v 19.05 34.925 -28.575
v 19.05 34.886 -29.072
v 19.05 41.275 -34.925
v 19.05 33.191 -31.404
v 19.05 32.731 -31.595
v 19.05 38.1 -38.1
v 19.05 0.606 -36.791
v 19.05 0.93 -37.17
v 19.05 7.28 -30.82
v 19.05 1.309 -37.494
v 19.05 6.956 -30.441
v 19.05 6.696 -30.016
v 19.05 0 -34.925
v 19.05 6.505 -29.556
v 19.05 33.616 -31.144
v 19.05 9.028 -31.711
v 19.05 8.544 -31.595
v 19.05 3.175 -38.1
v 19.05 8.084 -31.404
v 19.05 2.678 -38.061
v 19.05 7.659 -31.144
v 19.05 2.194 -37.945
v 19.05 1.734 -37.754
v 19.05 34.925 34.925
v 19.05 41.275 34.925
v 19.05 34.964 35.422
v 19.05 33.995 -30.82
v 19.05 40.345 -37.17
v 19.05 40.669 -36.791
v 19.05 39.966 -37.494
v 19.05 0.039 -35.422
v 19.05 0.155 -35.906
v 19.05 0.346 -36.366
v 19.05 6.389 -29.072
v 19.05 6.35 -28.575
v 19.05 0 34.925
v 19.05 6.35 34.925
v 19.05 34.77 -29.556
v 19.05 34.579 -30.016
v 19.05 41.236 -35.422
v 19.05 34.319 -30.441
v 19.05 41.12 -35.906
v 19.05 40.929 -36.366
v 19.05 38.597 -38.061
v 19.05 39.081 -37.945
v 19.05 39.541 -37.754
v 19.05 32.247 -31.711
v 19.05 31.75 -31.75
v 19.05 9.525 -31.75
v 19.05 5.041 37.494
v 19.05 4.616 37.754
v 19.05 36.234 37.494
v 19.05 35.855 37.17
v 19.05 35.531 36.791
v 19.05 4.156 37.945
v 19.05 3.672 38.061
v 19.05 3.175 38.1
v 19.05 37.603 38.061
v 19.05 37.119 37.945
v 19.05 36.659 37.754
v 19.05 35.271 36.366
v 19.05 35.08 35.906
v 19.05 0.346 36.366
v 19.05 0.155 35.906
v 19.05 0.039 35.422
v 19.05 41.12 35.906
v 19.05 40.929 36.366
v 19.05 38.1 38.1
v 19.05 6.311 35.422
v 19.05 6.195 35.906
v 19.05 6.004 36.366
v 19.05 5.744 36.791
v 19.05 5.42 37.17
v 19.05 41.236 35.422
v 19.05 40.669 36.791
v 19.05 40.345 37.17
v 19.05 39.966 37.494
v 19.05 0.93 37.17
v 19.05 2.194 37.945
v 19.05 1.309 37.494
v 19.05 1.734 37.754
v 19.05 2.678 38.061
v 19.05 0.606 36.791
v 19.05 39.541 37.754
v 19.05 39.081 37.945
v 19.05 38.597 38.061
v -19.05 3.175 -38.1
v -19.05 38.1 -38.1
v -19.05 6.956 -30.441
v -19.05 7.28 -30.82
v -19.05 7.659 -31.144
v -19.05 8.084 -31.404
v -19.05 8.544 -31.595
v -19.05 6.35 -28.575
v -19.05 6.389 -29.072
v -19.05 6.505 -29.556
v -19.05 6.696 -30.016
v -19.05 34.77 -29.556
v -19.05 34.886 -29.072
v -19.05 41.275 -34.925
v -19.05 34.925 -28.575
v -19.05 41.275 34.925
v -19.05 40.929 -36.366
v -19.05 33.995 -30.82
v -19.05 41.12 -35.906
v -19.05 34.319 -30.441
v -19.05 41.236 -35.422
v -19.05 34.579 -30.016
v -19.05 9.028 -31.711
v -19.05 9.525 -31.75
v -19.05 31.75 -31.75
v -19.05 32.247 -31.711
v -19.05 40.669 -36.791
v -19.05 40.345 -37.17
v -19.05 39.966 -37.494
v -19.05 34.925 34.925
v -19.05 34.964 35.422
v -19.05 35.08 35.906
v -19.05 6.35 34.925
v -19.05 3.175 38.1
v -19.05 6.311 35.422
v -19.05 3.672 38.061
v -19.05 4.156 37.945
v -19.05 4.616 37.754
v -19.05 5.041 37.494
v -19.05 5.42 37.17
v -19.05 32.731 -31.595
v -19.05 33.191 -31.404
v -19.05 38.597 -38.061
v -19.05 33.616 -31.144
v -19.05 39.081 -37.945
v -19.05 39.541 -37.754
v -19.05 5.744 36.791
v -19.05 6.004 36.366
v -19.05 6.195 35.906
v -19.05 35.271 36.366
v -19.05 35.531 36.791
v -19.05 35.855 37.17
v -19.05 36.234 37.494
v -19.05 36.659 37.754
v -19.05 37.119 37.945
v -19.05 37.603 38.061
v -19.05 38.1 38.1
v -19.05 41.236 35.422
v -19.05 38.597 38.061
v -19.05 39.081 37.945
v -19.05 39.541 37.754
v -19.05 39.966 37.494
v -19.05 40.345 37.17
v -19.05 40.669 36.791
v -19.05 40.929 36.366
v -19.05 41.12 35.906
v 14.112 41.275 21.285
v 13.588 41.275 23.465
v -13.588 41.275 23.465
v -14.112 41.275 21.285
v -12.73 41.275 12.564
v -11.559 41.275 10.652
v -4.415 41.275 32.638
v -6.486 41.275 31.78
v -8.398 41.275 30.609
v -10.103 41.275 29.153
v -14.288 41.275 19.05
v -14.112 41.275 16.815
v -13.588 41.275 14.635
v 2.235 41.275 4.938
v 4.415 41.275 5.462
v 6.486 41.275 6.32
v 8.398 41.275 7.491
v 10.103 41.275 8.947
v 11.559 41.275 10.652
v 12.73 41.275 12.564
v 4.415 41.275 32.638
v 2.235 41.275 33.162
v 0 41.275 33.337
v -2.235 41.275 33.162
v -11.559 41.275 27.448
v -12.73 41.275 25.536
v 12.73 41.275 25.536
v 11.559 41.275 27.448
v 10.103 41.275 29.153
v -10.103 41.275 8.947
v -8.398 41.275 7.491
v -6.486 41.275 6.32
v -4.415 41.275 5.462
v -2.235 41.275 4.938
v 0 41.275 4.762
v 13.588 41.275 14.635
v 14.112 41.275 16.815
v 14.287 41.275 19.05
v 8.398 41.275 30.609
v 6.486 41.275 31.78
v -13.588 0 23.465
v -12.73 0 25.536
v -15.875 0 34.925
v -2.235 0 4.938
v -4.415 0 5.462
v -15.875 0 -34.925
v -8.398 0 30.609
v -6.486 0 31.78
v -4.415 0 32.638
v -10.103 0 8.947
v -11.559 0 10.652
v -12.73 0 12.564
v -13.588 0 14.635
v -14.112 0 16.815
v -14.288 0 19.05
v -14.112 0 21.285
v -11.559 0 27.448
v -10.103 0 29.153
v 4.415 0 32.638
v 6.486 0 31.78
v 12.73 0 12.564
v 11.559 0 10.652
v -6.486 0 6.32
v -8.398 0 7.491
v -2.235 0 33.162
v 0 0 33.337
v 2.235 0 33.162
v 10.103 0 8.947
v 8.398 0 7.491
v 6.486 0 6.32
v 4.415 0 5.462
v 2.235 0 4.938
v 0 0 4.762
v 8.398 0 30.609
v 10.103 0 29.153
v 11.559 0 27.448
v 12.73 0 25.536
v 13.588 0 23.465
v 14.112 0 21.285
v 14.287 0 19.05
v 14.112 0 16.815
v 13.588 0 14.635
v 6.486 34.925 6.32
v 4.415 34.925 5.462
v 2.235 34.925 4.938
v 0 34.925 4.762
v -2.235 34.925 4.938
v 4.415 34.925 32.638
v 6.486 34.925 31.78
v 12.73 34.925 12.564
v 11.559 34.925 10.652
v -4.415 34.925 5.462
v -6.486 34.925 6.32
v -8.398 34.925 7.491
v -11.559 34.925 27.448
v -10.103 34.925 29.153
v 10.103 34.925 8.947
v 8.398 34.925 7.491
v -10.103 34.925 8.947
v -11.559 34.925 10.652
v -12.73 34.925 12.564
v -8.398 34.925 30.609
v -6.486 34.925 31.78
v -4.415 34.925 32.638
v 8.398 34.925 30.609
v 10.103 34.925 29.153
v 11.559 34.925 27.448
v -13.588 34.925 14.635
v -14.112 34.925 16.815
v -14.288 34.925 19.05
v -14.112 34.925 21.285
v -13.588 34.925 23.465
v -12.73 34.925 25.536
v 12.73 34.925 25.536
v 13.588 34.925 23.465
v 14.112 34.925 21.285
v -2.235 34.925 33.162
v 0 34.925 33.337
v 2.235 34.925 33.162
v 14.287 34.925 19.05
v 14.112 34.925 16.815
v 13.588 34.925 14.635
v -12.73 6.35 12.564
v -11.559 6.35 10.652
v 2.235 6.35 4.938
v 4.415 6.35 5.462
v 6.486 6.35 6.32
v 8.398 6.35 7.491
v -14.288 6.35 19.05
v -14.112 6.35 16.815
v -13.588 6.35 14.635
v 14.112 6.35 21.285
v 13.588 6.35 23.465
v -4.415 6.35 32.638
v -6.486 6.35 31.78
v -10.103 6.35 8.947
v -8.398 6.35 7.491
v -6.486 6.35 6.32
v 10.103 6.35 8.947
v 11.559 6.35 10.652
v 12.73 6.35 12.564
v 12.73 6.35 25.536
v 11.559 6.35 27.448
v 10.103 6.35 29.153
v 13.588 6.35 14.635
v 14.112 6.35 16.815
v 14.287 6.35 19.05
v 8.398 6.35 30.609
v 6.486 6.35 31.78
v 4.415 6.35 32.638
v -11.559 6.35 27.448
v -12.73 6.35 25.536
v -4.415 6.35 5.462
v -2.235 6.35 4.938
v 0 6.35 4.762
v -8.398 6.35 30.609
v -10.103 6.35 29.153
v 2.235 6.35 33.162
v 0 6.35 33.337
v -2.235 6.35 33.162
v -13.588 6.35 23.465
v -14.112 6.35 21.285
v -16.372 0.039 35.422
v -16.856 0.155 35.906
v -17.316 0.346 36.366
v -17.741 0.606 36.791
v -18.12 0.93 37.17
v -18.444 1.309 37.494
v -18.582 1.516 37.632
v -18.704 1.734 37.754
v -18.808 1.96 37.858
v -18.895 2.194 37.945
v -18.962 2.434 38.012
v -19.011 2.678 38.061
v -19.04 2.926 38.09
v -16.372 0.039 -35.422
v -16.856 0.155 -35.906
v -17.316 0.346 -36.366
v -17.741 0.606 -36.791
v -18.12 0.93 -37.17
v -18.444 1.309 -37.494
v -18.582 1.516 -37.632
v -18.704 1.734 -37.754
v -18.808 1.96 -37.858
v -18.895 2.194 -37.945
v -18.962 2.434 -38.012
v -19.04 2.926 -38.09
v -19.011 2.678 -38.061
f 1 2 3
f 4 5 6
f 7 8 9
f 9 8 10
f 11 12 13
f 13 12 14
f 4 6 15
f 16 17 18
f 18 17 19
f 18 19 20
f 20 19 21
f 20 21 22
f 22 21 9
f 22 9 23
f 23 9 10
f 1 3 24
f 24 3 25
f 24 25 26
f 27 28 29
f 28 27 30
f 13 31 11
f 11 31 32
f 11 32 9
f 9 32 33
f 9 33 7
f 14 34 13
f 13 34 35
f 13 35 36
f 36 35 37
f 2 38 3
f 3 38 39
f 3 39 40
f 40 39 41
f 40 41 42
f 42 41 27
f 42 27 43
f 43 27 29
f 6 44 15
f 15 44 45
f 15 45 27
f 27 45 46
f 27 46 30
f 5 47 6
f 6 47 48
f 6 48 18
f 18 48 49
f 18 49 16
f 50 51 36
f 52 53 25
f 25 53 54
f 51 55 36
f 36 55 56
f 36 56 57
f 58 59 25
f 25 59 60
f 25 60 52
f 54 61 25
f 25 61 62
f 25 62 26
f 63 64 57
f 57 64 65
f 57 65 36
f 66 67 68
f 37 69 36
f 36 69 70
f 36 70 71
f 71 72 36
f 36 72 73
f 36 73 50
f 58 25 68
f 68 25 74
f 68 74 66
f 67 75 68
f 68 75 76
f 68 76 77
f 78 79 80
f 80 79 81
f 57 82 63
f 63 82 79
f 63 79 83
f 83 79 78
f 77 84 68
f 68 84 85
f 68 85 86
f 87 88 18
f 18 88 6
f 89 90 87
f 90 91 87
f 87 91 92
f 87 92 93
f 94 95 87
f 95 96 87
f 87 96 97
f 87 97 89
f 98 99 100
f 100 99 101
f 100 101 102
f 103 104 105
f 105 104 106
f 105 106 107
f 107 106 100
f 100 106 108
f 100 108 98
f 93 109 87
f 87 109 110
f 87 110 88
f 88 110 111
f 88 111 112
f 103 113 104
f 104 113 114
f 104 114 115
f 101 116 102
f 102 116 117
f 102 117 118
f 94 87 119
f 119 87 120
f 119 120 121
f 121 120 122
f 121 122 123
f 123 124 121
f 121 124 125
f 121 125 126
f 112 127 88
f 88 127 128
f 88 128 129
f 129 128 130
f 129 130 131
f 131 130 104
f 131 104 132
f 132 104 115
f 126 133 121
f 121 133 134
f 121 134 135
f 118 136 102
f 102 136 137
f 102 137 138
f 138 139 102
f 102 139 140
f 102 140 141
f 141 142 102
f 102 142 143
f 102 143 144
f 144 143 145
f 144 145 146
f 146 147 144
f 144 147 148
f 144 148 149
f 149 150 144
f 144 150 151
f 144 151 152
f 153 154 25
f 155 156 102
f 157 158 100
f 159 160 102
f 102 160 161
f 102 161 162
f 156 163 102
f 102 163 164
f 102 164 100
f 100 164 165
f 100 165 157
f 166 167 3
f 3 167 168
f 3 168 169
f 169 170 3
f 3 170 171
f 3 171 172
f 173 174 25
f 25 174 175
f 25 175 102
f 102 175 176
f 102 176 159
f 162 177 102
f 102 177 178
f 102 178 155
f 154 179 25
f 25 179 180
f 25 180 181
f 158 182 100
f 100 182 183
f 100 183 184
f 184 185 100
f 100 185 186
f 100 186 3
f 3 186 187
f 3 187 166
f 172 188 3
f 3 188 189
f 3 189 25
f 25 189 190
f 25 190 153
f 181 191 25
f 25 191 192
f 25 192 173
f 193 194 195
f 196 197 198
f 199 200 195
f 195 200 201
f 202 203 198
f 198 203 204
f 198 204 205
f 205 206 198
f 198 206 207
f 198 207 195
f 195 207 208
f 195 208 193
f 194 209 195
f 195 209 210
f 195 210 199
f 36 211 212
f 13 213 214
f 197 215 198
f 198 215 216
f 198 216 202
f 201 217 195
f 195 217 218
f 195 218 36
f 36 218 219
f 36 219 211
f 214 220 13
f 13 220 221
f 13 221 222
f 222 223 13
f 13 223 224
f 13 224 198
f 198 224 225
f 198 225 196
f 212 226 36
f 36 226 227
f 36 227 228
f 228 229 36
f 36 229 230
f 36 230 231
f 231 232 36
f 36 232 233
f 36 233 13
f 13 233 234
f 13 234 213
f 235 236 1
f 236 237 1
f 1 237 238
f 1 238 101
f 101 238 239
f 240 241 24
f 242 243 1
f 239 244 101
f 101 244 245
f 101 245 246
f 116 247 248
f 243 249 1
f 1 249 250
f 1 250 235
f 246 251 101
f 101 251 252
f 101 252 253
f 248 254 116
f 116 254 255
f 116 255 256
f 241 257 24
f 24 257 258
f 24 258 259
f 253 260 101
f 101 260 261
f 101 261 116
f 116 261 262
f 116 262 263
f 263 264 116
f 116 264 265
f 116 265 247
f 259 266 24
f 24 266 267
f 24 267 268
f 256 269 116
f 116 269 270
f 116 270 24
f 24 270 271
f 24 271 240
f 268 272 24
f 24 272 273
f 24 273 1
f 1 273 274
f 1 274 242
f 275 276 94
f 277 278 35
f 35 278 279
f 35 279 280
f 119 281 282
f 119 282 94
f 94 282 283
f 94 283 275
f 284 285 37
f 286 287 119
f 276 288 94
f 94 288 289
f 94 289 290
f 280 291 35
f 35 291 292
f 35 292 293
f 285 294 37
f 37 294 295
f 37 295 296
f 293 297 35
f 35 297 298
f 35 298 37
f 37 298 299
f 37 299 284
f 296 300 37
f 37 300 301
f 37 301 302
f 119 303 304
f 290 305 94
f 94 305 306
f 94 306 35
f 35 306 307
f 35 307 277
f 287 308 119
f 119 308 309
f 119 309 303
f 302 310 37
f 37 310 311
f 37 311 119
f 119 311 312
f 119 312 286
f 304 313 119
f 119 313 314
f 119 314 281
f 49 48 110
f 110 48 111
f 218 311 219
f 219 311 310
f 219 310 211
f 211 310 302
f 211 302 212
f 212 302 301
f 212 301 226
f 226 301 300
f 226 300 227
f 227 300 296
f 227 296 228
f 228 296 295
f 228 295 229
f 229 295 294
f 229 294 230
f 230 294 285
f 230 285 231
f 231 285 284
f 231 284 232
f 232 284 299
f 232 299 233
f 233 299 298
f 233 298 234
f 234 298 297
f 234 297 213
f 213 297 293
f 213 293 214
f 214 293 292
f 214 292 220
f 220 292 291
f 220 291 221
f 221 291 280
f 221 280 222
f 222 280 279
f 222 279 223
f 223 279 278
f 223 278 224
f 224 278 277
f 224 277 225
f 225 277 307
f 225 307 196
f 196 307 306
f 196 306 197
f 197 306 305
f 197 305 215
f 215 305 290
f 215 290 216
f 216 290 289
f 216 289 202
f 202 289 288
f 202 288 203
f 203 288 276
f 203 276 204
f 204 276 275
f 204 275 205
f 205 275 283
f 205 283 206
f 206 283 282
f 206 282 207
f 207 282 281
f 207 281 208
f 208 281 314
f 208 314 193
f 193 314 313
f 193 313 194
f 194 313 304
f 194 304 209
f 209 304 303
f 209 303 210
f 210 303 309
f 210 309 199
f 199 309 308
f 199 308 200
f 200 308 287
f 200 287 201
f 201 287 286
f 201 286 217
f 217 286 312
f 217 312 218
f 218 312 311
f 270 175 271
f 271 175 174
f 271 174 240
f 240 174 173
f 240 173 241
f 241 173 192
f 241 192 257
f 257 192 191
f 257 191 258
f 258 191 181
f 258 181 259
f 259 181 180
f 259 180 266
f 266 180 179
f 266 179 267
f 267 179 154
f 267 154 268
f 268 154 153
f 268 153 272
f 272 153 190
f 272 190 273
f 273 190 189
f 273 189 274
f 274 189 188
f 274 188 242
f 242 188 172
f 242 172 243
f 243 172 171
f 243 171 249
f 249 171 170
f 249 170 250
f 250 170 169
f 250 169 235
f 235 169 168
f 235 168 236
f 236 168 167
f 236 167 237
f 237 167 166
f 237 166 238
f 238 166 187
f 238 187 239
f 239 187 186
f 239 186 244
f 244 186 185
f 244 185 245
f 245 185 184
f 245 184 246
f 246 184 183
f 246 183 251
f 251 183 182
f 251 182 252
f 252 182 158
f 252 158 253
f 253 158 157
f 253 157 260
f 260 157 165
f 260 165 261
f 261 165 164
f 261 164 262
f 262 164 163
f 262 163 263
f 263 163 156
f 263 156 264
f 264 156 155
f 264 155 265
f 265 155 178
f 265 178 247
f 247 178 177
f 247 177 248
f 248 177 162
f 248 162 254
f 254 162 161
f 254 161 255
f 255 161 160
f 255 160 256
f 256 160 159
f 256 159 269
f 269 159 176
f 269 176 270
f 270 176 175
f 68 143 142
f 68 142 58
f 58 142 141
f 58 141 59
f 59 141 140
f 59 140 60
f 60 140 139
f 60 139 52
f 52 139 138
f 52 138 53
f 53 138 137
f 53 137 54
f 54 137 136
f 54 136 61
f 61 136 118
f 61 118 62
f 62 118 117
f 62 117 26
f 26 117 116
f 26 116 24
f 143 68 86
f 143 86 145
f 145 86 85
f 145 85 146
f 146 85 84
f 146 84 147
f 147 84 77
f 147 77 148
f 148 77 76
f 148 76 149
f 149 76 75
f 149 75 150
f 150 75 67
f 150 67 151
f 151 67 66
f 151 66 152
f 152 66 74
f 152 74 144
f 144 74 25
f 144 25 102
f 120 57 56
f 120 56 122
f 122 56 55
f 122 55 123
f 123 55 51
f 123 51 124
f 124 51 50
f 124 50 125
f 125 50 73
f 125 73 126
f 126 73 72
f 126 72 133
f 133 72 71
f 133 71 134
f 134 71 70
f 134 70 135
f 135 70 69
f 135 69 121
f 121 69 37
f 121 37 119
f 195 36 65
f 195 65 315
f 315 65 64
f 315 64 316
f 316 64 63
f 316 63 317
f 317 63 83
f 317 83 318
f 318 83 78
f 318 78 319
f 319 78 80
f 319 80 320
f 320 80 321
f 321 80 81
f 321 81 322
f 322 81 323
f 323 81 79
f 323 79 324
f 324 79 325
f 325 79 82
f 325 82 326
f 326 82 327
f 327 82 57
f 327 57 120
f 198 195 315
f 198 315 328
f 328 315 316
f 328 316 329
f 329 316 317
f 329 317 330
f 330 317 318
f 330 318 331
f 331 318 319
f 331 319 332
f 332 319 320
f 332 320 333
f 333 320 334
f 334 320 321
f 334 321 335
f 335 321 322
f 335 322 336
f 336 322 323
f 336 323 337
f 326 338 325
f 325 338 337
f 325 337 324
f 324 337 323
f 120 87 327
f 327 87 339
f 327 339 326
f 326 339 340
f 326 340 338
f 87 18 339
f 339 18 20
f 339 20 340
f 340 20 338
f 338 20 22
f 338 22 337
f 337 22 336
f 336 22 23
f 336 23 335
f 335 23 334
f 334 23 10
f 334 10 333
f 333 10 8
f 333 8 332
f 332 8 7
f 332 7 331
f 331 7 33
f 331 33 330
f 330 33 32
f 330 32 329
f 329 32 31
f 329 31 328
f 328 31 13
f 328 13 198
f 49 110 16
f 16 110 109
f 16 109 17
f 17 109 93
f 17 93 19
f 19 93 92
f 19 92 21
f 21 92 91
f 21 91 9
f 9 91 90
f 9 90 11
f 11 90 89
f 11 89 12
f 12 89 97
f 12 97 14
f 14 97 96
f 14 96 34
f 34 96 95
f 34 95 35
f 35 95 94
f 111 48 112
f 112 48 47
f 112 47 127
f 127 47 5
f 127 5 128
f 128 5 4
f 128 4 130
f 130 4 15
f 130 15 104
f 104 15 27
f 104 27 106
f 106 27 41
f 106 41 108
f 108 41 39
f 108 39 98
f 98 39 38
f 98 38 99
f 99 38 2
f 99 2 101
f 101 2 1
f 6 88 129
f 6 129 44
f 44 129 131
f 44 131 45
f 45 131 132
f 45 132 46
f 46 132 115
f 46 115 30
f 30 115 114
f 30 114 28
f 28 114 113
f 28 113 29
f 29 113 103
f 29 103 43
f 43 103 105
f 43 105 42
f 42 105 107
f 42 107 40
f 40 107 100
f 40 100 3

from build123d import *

# Parameters (mm, degrees)
SKETCH1_W           = 38.1
SKETCH1_H           = 76.2
BOSS_EXTRUDE1_DEPTH = 41.275
SKETCH2_W           = 38.1
SKETCH2_H           = 28.575
CUT_EXTRUDE1_DEPTH  = 69.85
SKETCH3_R           = 14.2875
CUT_EXTRUDE2_DEPTH  = 60.313894873
FILLET1_R           = 3.175


with BuildPart() as part:
    # Sketch1 → Boss-Extrude1 (new body)
    with BuildSketch(Plane(origin=(0, 0, 0), x_dir=(1, 0, 0), z_dir=(0, 1, 0))):
        Rectangle(SKETCH1_W, SKETCH1_H)
    extrude(amount=BOSS_EXTRUDE1_DEPTH)

    # Sketch2 → Cut-Extrude1 (cut)
    with BuildSketch(Plane.XY.offset(38.1)):
        with Locations((0, 20.6375)):
            Rectangle(SKETCH2_W, SKETCH2_H)
    extrude(amount=-CUT_EXTRUDE1_DEPTH, mode=Mode.SUBTRACT)

    # Sketch3 → Cut-Extrude2 (cut, through all)
    # profile 1 of 2: a face of its own
    with BuildSketch(Plane(origin=(0, 41.275, 0), x_dir=(1, 0, 0), z_dir=(0, 1, 0))):
        with Locations(Location((0, -19.05, 0), (0, 0, 270))):
            Circle(SKETCH3_R)
        Polygon((7.332348419, -19.05), (3.666174209, -12.7), (-3.666174209, -12.7), (-7.332348419, -19.05), (-3.666174209, -25.4), (3.666174209, -25.4), align=None, mode=Mode.SUBTRACT)
    # profile 2 of 2: a face of its own
    with BuildSketch(Plane(origin=(0, 41.275, 0), x_dir=(1, 0, 0), z_dir=(0, 1, 0))):
        Polygon((3.666174209, -25.4), (7.332348419, -19.05), (3.666174209, -12.7), (-3.666174209, -12.7), (-7.332348419, -19.05), (-3.666174209, -25.4), align=None)
    extrude(amount=-CUT_EXTRUDE2_DEPTH, mode=Mode.SUBTRACT)

    # Fillet1
    fillet1_edges = [part.edges().sort_by_distance(p)[0] for p in [
        (0, 41.275, 38.1),
        (0, 0, -38.1),
        (0, 0, 38.1),
        (0, 6.35, 38.1),
        (0, 6.35, -31.75),
        (0, 34.925, -31.75),
        (0, 34.925, 38.1),
        (0, 41.275, -38.1),
        (-19.05, 0, 0),
    ]]
    fillet(fillet1_edges, radius=FILLET1_R - 0.0001)  # a hair under: the kernel refuses the full size


solid = part.part
